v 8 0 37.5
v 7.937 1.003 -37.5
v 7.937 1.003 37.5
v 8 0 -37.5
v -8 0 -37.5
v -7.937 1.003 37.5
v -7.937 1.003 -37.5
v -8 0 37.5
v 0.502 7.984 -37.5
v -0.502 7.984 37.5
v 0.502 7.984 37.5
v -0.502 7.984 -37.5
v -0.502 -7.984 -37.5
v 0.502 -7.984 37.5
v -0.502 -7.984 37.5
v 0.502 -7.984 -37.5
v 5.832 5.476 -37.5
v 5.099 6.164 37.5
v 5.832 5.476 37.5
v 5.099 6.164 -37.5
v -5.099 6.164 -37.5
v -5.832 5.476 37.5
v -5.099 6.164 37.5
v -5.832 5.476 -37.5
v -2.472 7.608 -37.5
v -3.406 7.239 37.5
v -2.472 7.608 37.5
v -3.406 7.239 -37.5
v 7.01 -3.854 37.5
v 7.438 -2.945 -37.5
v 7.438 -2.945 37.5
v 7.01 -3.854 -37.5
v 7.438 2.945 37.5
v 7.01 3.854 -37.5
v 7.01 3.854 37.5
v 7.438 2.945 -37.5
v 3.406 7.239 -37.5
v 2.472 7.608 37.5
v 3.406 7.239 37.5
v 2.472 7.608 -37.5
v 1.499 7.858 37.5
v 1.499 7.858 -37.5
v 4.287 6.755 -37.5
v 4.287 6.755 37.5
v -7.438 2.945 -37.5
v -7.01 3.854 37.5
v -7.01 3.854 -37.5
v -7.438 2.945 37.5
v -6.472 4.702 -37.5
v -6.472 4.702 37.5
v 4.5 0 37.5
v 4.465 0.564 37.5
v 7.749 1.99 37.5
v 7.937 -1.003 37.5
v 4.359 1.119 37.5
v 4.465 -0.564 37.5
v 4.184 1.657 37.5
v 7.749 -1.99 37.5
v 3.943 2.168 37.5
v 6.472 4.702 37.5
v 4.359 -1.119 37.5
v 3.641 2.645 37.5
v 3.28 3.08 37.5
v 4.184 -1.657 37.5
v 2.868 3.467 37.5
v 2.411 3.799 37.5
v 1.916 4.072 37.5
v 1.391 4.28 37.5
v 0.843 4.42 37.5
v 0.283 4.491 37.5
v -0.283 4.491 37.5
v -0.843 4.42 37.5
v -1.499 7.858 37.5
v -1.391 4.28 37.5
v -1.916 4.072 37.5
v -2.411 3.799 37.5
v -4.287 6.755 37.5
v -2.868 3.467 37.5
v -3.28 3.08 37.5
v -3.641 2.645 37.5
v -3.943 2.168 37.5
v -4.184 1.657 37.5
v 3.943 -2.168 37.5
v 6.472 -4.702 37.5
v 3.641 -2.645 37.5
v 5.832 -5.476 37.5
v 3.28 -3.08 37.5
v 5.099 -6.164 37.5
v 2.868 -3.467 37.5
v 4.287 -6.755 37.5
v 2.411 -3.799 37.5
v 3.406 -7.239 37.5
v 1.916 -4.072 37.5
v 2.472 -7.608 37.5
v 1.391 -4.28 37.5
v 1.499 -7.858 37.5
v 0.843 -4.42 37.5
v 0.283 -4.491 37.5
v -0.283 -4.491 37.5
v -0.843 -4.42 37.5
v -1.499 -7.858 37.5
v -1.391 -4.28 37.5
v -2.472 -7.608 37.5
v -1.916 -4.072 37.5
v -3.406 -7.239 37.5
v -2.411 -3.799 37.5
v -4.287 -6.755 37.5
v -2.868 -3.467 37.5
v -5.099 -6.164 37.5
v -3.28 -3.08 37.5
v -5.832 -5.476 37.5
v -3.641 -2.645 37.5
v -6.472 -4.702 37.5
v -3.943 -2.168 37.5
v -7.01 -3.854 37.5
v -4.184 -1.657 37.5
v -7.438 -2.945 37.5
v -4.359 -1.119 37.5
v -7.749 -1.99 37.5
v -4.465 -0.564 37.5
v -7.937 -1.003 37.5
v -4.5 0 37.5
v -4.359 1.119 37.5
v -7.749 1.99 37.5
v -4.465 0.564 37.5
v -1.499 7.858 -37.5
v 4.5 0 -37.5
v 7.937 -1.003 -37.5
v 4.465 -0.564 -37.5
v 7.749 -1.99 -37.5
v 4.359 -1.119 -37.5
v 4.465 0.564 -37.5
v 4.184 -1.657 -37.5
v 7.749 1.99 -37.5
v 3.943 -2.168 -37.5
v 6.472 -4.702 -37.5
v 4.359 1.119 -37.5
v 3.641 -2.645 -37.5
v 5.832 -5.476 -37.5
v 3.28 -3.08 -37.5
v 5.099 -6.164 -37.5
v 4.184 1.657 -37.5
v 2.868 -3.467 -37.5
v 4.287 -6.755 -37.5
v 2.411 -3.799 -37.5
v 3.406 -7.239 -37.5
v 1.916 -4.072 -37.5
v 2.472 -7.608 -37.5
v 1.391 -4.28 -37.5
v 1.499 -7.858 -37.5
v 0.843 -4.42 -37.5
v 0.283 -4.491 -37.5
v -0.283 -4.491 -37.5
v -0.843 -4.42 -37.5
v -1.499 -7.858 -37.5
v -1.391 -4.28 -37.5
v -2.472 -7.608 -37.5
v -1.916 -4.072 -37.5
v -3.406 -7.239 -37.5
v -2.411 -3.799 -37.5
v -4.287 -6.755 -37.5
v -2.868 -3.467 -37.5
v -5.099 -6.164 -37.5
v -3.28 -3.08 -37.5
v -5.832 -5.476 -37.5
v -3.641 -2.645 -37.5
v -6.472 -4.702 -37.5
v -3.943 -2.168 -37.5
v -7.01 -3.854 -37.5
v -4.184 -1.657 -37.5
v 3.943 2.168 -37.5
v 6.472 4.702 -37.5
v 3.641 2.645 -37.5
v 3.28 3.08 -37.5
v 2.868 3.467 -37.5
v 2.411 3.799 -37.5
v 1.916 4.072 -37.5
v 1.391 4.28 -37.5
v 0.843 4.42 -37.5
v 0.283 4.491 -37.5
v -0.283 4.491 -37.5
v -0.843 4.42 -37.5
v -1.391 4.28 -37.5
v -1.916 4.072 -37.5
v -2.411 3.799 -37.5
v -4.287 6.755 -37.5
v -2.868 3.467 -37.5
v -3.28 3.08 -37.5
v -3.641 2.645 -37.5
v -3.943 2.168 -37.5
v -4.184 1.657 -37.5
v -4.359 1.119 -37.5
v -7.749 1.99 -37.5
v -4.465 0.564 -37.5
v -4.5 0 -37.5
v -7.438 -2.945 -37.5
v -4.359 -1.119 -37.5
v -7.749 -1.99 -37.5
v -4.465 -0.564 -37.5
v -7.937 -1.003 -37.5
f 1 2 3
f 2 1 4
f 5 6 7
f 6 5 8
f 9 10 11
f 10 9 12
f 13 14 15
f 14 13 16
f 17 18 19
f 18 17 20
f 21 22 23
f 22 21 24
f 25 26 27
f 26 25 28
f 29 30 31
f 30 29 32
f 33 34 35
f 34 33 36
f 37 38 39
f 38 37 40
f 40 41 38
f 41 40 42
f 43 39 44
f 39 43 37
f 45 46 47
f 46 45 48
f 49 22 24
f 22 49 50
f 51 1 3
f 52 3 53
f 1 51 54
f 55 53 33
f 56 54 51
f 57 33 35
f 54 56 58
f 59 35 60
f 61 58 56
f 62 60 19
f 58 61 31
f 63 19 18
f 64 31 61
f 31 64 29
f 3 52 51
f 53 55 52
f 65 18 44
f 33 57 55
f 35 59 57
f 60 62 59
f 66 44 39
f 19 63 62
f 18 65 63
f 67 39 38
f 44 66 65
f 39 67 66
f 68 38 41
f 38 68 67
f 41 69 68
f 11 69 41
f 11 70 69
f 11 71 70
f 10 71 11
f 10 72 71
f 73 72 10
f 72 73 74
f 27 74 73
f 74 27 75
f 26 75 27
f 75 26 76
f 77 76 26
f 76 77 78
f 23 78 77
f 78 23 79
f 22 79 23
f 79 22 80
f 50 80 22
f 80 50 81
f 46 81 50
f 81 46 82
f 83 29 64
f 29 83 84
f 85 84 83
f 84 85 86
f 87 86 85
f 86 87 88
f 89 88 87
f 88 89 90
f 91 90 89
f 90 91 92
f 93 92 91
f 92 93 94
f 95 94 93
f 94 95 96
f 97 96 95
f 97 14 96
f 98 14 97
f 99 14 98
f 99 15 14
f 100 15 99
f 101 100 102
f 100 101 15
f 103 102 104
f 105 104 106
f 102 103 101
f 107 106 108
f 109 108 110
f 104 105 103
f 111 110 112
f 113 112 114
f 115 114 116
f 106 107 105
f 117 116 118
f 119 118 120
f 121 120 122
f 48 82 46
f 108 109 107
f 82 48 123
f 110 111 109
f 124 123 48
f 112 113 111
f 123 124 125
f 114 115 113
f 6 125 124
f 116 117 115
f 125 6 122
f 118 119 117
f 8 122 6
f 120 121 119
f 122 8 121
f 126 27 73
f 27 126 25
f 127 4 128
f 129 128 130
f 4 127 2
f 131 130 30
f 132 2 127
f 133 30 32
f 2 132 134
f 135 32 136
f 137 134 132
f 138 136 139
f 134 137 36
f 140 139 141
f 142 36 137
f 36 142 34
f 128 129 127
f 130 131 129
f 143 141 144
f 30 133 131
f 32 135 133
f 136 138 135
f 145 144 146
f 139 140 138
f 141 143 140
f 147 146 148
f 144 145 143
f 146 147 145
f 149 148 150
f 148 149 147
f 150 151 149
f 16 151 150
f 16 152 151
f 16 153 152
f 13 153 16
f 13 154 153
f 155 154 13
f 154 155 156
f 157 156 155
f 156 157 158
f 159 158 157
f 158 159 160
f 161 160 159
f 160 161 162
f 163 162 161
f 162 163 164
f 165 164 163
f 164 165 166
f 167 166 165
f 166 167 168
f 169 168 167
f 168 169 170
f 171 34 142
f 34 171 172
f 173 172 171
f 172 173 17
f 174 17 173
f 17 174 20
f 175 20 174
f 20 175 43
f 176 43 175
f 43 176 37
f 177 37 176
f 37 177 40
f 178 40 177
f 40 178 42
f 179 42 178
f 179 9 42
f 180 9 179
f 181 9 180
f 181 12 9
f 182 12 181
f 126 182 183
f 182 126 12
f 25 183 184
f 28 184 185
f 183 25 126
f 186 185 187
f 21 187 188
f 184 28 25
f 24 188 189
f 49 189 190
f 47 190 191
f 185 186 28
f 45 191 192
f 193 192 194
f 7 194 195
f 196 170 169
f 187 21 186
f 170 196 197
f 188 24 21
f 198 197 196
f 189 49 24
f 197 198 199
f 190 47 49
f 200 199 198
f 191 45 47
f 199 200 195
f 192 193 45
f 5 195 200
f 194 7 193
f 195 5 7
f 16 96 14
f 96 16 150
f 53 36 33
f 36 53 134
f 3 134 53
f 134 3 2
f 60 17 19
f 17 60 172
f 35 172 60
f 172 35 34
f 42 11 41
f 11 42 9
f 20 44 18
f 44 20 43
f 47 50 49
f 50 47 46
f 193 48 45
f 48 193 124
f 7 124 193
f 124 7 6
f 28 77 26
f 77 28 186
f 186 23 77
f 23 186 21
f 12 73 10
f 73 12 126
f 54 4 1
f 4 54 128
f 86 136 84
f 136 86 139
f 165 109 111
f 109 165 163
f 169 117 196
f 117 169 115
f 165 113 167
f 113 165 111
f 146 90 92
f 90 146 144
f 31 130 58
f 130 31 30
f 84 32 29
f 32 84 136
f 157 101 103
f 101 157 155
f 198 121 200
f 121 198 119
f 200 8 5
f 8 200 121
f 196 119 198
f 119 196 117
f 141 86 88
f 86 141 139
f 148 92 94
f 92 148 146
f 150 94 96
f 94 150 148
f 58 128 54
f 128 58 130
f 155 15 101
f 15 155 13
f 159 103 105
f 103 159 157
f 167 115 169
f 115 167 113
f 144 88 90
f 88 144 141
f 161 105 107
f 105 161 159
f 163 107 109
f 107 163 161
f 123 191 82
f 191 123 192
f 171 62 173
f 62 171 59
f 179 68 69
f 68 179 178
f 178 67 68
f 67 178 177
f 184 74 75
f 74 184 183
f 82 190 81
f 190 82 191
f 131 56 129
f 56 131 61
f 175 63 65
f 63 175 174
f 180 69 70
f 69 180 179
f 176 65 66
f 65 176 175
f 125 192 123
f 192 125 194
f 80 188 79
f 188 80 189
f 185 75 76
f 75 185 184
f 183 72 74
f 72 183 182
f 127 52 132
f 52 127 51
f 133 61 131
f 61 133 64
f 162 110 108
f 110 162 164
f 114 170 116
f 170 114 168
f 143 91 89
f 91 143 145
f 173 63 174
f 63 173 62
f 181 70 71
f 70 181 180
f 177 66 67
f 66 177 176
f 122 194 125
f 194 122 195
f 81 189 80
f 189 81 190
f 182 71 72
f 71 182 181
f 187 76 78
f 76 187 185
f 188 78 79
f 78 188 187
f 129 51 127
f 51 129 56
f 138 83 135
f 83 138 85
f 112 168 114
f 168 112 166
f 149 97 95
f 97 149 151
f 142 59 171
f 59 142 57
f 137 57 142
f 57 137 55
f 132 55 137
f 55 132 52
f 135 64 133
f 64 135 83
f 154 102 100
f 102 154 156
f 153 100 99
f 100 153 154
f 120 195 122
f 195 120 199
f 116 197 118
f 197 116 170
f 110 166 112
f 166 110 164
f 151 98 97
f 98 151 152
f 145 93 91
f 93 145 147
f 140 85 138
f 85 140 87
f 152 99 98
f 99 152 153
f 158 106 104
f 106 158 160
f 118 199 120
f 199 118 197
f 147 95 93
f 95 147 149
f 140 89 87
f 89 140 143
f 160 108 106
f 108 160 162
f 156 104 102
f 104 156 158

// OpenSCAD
$fn = 50;


difference() {
	union() {
		translate(v = [0, 0, -37.5000000000]) {
			cylinder(h = 75, r = 8.0000000000);
		}
	}
	union() {
		translate(v = [0, 0, -100.0000000000]) {
			cylinder(h = 200, r = 4.5000000000);
		}
	}
}
